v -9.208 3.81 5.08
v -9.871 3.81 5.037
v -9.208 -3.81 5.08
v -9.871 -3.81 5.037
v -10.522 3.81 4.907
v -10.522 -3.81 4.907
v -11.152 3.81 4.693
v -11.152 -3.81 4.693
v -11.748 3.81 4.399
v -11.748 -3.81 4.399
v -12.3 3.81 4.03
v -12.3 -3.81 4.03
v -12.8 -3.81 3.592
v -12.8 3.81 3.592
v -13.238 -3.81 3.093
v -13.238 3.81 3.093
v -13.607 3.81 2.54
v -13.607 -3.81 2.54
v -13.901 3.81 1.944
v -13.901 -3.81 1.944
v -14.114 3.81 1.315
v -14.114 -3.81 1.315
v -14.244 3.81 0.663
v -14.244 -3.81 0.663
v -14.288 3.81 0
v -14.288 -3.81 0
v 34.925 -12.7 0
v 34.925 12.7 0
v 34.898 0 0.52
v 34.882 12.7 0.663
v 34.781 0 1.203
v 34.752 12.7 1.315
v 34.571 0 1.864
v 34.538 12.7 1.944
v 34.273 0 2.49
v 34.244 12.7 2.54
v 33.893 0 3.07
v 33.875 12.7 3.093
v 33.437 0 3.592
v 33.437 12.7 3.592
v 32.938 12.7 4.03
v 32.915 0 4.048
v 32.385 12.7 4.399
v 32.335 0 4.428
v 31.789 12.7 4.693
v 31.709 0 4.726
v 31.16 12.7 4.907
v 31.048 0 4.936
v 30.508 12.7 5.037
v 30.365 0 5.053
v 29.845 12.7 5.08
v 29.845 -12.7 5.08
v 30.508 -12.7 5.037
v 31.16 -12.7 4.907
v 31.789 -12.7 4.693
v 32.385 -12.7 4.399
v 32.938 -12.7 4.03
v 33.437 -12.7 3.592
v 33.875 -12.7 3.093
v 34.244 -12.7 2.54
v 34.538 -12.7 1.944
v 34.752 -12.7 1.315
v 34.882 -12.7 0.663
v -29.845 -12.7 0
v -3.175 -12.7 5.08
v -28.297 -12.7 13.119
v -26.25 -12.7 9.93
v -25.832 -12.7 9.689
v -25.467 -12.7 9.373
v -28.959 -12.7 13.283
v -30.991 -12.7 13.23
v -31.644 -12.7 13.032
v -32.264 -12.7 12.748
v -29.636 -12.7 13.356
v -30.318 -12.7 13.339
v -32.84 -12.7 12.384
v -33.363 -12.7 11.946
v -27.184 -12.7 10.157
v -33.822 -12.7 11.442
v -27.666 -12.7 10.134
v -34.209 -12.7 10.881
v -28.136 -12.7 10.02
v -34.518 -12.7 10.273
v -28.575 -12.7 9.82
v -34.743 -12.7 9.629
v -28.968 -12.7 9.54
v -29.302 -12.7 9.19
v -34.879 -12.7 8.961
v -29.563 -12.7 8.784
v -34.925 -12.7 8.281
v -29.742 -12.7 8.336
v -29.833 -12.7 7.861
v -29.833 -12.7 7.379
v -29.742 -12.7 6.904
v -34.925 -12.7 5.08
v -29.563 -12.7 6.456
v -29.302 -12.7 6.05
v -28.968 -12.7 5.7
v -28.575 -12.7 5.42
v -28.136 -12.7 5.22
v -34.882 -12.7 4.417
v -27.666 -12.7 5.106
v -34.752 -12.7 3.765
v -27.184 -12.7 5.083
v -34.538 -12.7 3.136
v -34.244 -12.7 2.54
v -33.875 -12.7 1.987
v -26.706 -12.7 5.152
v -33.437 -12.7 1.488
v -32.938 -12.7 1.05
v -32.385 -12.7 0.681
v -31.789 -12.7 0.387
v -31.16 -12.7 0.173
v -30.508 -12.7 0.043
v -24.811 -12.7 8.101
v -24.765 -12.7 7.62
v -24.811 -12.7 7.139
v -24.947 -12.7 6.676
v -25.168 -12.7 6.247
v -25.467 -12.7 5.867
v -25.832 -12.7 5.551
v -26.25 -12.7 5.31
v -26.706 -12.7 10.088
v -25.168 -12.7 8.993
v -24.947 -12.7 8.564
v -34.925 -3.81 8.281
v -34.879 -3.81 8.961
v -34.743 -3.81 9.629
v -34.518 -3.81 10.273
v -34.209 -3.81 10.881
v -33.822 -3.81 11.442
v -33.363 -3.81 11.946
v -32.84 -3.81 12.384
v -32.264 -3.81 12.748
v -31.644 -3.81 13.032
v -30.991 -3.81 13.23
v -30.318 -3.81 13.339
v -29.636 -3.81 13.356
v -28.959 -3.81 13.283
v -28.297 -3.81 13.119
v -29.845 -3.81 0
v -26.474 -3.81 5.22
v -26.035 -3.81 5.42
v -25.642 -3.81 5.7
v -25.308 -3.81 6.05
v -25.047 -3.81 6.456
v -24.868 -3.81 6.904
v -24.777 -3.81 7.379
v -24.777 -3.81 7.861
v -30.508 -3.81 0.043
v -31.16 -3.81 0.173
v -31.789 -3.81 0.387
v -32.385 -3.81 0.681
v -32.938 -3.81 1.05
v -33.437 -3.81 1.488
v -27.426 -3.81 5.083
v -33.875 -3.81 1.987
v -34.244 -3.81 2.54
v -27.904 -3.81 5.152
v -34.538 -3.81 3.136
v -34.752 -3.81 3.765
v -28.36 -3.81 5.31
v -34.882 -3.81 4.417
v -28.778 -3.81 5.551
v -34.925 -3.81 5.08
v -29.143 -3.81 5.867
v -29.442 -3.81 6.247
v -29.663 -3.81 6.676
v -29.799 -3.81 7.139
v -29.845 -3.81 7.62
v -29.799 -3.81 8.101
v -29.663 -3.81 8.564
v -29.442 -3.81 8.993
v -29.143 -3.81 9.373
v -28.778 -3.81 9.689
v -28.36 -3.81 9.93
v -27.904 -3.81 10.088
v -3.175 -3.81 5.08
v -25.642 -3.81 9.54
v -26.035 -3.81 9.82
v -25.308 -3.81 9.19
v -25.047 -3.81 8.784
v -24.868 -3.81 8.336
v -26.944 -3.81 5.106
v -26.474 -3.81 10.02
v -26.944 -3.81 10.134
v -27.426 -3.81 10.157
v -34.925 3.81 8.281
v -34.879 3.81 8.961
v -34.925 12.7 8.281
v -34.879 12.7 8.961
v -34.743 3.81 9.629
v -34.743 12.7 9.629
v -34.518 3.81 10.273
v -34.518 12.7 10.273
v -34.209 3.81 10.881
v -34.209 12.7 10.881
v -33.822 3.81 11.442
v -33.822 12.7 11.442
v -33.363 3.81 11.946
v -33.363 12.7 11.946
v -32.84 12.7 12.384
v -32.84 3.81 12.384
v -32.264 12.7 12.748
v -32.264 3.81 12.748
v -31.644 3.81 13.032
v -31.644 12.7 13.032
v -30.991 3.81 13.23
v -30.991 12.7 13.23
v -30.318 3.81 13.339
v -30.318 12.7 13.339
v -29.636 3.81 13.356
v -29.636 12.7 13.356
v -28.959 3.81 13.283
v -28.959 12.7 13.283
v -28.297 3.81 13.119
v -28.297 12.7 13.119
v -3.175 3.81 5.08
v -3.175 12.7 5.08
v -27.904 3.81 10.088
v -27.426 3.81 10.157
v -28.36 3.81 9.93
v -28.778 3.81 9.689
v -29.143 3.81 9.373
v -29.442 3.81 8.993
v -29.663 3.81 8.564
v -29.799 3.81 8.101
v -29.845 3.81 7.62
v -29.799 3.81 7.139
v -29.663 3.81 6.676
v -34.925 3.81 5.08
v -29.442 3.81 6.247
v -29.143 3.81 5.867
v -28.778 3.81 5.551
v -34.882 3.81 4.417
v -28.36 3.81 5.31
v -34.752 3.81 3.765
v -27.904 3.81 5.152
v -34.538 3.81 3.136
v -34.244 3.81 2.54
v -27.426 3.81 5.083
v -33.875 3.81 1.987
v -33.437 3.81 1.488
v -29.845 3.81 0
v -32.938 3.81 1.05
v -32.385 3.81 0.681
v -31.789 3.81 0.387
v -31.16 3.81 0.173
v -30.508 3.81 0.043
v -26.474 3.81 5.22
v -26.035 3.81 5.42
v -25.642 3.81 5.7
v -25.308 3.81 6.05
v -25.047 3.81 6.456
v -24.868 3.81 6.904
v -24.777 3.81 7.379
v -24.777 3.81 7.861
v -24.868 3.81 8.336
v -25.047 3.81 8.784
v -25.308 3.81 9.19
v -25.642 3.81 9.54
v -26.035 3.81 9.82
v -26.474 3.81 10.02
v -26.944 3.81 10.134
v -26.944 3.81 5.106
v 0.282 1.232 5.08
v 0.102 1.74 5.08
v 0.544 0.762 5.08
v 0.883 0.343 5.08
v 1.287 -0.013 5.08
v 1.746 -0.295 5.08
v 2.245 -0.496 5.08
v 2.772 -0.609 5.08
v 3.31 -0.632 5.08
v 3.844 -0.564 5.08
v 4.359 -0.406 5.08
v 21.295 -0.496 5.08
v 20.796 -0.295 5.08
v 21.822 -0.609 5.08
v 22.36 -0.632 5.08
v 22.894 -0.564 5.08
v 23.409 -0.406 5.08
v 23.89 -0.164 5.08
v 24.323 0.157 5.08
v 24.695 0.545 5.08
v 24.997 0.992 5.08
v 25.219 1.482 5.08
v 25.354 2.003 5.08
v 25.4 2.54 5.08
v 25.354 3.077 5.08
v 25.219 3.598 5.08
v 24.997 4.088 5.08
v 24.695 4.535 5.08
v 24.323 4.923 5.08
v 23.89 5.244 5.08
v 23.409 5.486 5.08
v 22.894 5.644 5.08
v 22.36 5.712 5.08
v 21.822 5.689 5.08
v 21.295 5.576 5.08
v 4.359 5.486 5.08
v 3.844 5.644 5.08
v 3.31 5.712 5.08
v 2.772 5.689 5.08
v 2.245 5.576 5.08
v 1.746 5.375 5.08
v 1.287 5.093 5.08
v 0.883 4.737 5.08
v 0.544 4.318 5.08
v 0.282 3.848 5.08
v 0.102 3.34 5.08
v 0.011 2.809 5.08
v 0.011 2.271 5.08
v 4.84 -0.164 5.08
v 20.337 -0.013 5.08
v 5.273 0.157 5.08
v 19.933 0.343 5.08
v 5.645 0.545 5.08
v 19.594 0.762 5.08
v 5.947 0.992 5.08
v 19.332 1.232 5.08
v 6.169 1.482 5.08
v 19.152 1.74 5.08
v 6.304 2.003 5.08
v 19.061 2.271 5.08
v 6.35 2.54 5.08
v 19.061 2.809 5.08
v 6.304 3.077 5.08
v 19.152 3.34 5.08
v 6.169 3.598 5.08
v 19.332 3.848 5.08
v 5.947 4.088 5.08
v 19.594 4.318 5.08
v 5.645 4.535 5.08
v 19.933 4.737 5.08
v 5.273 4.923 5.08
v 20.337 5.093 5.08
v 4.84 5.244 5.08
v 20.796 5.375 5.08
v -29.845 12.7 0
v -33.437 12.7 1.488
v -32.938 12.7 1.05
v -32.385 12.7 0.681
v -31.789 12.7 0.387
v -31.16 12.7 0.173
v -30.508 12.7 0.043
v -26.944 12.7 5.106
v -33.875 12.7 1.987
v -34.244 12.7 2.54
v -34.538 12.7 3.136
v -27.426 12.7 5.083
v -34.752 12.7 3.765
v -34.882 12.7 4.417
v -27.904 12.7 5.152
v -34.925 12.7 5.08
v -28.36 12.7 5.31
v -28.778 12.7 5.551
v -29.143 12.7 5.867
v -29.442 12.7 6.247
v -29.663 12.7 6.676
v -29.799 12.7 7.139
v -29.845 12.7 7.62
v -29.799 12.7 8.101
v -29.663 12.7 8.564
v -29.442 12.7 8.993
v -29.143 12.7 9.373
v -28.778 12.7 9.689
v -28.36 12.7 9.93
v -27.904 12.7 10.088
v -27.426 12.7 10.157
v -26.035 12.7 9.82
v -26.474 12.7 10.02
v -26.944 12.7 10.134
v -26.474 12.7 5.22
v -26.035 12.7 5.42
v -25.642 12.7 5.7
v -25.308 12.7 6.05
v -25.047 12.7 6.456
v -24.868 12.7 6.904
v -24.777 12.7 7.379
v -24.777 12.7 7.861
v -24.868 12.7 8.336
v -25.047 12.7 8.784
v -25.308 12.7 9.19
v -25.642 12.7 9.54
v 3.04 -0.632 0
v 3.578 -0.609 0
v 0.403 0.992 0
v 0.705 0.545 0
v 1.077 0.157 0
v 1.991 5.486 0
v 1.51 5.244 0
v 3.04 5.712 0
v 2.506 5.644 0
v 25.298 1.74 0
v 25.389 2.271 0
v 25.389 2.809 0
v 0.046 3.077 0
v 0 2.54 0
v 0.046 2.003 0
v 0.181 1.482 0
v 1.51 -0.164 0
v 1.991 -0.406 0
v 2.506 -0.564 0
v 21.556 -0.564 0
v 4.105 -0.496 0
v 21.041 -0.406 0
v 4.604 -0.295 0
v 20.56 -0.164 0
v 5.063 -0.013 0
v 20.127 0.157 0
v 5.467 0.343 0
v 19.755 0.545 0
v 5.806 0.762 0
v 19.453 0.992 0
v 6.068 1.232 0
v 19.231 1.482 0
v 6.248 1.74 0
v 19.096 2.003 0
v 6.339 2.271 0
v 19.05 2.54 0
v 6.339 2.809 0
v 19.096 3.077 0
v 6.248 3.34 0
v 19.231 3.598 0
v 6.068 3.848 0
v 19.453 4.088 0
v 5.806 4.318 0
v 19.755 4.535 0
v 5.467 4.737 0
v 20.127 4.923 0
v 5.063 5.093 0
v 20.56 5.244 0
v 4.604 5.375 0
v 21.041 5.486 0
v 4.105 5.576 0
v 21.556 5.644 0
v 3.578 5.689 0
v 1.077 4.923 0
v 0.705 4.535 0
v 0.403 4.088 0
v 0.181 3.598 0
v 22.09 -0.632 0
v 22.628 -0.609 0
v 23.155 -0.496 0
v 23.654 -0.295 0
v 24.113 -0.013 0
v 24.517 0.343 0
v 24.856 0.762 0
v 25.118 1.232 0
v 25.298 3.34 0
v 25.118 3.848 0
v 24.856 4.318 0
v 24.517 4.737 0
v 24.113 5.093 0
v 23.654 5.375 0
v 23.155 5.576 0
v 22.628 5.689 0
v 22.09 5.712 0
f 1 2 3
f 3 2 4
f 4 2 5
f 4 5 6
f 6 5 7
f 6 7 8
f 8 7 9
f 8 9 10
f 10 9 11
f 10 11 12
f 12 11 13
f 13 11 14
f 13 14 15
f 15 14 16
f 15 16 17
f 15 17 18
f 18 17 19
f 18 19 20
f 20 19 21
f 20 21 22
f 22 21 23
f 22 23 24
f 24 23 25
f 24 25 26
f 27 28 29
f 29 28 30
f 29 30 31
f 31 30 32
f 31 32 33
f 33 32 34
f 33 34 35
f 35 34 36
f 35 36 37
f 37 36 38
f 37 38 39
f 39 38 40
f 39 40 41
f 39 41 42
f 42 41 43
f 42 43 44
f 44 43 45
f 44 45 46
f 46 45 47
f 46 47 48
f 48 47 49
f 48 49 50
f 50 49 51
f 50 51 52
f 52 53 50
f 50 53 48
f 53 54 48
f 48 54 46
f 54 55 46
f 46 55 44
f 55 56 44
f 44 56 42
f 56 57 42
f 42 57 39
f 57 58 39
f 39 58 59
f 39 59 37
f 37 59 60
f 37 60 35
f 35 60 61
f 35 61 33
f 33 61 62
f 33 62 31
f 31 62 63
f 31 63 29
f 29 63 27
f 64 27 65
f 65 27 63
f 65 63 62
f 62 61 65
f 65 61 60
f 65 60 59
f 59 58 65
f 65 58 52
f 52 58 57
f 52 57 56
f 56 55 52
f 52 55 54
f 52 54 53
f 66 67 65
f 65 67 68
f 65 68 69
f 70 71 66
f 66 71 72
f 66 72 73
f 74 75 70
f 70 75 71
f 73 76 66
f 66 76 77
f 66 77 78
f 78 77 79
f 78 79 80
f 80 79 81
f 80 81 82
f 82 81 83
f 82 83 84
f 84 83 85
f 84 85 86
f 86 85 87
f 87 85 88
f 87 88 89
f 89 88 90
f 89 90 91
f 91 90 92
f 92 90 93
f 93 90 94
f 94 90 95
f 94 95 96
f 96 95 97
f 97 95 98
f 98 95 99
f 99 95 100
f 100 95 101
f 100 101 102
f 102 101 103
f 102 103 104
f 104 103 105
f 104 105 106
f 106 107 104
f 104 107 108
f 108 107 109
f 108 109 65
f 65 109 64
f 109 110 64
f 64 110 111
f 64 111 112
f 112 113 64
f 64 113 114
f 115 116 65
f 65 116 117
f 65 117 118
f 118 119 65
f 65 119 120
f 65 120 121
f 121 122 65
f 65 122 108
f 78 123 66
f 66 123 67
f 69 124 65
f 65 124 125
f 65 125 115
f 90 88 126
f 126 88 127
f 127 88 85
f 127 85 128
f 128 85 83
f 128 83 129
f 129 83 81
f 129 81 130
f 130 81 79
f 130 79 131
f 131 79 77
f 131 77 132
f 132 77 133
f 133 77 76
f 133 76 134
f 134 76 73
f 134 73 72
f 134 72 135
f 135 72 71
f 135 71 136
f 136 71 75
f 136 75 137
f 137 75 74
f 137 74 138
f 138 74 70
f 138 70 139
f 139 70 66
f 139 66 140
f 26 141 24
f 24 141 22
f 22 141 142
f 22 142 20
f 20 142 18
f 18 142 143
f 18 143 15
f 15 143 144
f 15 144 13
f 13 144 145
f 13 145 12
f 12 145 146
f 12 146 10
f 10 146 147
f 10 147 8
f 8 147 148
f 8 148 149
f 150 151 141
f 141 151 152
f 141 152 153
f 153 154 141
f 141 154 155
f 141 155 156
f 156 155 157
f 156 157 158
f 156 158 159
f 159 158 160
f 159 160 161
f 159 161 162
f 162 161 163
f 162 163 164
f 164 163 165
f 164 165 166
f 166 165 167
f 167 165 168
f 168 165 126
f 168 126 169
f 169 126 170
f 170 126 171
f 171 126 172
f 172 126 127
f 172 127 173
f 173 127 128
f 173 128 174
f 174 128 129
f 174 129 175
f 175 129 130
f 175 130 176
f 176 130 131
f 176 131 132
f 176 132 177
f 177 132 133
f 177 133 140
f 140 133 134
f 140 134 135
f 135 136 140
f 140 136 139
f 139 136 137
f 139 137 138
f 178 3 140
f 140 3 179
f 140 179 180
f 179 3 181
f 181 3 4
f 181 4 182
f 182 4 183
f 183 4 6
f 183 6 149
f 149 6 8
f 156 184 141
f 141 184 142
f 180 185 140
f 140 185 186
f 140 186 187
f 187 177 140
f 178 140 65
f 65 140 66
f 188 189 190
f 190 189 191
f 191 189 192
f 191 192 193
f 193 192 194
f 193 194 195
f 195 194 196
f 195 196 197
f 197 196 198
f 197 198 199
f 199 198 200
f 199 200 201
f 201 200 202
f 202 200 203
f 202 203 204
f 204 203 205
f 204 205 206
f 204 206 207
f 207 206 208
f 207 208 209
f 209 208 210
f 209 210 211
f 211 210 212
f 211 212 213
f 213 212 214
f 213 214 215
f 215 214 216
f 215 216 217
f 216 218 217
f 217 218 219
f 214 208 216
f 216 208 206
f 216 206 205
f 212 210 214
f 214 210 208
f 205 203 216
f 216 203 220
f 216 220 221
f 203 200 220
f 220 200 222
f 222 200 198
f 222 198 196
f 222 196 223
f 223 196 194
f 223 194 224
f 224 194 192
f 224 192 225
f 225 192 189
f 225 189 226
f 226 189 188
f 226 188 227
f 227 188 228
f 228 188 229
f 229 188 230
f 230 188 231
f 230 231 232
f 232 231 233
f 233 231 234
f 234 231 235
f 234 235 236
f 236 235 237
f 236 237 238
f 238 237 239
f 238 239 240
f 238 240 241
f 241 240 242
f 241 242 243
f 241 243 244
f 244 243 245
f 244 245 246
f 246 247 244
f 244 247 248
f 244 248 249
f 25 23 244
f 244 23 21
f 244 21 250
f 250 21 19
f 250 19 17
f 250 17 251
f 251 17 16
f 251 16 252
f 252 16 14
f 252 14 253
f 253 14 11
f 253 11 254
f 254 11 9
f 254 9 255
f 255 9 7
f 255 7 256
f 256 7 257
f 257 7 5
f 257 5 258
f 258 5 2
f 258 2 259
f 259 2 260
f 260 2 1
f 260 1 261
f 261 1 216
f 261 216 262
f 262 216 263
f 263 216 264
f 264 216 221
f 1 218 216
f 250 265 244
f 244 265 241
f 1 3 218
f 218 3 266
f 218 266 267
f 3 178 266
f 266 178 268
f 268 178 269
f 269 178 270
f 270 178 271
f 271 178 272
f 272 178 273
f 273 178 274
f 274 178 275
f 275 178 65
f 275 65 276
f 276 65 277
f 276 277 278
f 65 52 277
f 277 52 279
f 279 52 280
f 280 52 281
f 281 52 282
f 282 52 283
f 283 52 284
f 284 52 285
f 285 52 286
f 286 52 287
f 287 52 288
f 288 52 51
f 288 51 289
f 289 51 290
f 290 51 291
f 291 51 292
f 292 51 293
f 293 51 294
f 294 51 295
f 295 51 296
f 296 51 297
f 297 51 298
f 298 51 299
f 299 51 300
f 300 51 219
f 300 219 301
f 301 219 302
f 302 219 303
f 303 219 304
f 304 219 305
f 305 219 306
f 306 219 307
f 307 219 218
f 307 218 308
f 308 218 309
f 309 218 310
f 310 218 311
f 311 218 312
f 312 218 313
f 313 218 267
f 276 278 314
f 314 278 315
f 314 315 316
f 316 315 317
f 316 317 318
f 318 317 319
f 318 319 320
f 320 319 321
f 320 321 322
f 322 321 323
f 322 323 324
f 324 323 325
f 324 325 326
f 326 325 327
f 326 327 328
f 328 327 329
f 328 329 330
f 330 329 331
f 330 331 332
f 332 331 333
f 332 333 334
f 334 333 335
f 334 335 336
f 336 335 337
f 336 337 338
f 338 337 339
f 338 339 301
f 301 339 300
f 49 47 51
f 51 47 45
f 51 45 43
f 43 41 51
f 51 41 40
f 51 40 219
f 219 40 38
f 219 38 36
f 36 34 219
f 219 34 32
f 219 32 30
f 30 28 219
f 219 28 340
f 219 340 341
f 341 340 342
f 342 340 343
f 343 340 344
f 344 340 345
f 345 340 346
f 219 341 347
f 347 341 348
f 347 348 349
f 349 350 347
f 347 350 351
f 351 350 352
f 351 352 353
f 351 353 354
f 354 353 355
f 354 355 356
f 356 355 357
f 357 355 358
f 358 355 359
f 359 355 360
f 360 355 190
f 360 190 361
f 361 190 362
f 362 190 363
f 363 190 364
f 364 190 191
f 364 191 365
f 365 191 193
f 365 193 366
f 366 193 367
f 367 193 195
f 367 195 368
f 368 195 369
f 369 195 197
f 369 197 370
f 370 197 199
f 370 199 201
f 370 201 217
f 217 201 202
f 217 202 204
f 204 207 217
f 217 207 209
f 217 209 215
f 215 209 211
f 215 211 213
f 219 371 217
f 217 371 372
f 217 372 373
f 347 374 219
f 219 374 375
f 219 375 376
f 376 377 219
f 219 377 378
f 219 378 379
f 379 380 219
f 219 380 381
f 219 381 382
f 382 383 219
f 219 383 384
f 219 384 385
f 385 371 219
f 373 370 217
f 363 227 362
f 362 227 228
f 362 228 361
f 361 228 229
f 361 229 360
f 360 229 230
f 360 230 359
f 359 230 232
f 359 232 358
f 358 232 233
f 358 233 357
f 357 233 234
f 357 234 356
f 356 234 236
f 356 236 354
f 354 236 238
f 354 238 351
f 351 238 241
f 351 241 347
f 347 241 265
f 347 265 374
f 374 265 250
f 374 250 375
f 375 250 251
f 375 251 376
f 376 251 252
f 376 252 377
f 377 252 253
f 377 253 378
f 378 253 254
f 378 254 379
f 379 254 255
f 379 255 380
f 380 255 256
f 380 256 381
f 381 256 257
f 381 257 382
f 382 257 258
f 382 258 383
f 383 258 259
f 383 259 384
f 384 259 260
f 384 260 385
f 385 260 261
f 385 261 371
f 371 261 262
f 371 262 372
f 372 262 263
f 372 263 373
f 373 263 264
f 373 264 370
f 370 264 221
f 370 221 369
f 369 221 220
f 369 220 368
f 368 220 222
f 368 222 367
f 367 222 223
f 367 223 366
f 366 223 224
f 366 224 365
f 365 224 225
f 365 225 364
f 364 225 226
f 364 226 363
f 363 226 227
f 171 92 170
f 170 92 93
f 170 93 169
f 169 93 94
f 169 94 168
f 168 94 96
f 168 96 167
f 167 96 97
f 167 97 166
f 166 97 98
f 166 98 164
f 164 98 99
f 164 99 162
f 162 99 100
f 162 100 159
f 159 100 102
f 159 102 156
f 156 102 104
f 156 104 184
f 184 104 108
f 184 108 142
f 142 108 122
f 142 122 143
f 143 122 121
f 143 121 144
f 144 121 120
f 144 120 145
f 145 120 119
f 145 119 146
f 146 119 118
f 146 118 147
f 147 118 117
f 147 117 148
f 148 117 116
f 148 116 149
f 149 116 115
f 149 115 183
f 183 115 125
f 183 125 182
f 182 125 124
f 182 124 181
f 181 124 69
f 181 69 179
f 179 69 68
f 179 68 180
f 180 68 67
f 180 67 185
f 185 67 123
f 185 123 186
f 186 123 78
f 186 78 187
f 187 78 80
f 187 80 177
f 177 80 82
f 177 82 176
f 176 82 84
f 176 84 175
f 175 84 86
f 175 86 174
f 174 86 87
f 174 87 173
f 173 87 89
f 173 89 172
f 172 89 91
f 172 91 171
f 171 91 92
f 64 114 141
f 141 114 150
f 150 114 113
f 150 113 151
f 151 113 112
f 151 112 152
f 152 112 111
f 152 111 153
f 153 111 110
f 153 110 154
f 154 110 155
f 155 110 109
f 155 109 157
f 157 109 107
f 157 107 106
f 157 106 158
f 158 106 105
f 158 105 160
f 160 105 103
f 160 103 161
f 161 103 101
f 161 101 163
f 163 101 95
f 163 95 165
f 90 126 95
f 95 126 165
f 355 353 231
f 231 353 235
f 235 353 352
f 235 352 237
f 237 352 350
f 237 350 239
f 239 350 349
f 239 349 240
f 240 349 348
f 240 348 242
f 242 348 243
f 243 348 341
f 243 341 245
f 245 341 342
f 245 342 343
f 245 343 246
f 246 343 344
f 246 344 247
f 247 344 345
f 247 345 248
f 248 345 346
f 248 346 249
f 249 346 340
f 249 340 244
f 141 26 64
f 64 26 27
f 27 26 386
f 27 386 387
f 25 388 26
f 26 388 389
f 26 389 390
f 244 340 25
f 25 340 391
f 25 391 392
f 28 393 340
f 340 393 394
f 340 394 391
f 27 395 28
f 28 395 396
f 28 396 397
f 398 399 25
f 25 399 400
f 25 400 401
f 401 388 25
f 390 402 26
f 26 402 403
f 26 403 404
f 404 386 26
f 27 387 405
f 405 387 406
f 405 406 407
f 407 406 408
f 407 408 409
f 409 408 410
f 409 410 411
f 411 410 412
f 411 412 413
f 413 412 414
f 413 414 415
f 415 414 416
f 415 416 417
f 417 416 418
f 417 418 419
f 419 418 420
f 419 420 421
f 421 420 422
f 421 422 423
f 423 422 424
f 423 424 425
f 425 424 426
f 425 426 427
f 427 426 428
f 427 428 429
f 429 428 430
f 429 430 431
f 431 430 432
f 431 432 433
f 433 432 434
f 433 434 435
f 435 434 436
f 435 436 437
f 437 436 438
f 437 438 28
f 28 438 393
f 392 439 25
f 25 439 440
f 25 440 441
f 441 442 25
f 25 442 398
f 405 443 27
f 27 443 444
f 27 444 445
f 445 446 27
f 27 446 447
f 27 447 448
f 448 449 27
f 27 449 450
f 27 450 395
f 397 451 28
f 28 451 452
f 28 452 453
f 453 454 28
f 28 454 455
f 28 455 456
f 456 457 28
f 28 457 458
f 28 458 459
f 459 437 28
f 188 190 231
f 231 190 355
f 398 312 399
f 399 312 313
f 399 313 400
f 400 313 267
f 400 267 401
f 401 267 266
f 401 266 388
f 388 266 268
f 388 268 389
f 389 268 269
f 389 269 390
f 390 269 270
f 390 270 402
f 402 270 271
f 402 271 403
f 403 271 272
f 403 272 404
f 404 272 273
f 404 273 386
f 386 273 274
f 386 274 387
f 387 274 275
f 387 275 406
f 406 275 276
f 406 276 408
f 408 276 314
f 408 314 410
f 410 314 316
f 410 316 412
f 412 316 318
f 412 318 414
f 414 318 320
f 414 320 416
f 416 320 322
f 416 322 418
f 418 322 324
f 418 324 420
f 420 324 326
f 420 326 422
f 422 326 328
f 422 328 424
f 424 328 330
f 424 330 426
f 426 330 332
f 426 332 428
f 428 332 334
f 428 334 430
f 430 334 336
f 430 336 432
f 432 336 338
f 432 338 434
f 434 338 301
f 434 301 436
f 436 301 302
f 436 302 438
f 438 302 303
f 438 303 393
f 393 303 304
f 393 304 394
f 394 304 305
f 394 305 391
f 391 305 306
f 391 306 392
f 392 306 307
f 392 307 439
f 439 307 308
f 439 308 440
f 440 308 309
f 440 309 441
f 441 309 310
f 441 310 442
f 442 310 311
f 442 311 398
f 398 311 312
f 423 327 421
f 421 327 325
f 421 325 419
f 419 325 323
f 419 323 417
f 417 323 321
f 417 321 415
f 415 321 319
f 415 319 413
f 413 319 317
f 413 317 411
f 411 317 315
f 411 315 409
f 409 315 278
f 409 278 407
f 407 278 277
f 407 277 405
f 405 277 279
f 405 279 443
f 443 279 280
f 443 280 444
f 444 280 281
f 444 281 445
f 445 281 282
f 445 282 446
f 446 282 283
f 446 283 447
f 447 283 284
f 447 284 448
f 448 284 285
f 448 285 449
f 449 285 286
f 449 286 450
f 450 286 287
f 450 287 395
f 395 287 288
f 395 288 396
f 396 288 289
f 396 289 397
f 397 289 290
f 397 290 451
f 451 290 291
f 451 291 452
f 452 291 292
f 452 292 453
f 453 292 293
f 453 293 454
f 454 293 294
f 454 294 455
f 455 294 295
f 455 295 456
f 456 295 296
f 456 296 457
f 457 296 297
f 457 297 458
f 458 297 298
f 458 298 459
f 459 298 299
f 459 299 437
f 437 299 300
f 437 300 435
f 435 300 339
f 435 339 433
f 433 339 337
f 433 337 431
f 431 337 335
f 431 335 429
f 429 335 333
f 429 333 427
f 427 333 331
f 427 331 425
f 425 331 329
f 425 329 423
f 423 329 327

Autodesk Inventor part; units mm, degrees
ref_plane "YZ Plane" through (0, 0, 0) normal (1, 0, 0) x (0, 1, 0)
ref_plane "XZ Plane" through (0, 0, 0) normal (0, 1, 0) x (-1, 0, 0)
ref_plane "XY Plane" through (0, 0, 0) normal (0, 0, 1) x (1, 0, 0)
sketch "Sketch1" plane through (0, 0, 0) normal (0, 0, 1) x (1, 0, 0)
  line L0 (-34.925, -12.7) -> (34.925, -12.7)
  line L1 (34.925, -12.7) -> (34.925, 12.7)
  line L2 (34.925, 12.7) -> (-34.925, 12.7)
  line L3 (-34.925, 12.7) -> (-34.925, -12.7)
  line L4 (-34.925, -12.7) -> (34.925, 12.7) construction
  line L5 (34.925, -12.7) -> (-34.925, 12.7) construction
  point P0 (0, 0)
  dimension "d0" = 25.4
  dimension "d1" = 69.85
extrude "Extrusion1" add sketch "Sketch1" along normal blind 5.08
sketch "Sketch2" plane through (0, 0, 5.08) normal (0, 0, 1) x (1, 0, 0)
  line L0 (-34.925, 12.7) -> (-34.925, -12.7) projected
  line L1 (34.925, -12.7) -> (34.925, 12.7) projected
  line L2 (34.925, 12.7) -> (-34.925, 12.7) projected
  point P0 (0, 0)
  point P1 (3.175, 2.54)
  point P2 (22.225, 2.54)
  dimension "d5" = 12.7
  dimension "d6" = 10.16
  dimension "d7" = 10.16
  dimension "d18" = 19.05
hole "Hole1" at (3.175, 2.54, 5.08) at (22.225, 2.54, 5.08) direction (0, 0, -1) diameter 6.35 end through all
sketch "Sketch5" plane through (0, 0, 5.08) normal (0, 0, 1) x (1, 0, 0)
  line L0 (34.925, 12.7) -> (-34.925, 12.7) projected
  line L1 (-34.925, 12.7) -> (-14.2875, 12.7)
  line L2 (-14.2875, 12.7) -> (-14.2875, 3.81)
  line L3 (-14.2875, 3.81) -> (-34.925, 3.81)
  line L4 (-34.925, 3.81) -> (-34.925, 12.7)
  line L5 (-34.925, 12.7) -> (-34.925, -12.7) projected
  line L6 (-34.925, -12.7) -> (-14.2875, -12.7)
  line L7 (-14.2875, -12.7) -> (-14.2875, -3.81)
  line L8 (-14.2875, -3.81) -> (-34.925, -3.81)
  line L9 (-34.925, -3.81) -> (-34.925, -12.7)
  point P0 (0, 0)
  dimension "d19" = 7.62
extrude "Extrusion2" add sketch "Sketch5" along normal blind 10.16
sketch "Sketch7" plane through (0, 0, 5.08) normal (0, 0, 1) x (1, 0, 0)
  line L0 (-29.845, 3.81) -> (-34.925, 3.81) projected
  line L1 (-19.3675, -3.81) -> (-14.2875, -3.81) projected
  line L2 (-34.925, 3.81) -> (-14.2875, 3.81)
  line L3 (-14.2875, 3.81) -> (-14.2875, -3.81)
  line L4 (-14.2875, -3.81) -> (-34.925, -3.81)
  line L5 (-34.925, -3.81) -> (-34.925, 3.81)
  point P0 (0, 0)
extrude "Extrusion4" cut sketch "Sketch7" against normal blind 12.7
fillet "Fillet2" radius 5.08 2 edges at (-34.925, 8.255, 0) (-34.925, -8.255, 0)
sketch "Sketch8" plane through (34.925, -12.7, 0) normal (0, -1, 0) x (1, 0, 0)
  line L0 (-69.85, 5.08) -> (-69.85, 15.24) projected
  line L1 (-64.77, 0) -> (0, 0) projected
  point P0 (-34.925, 0)
  point P1 (-62.23, 7.62)
  point P2 (-69.85, 10.16)
  dimension "d28" = 7.62
  dimension "d29" = 7.62
hole "Hole2" at (-27.305, -12.7, 7.62) direction (0, 1, 0) diameter 5.08 end through all
sketch "Sketch9" plane through (34.925, 12.7, 5.08) normal (0, 1, 0) x (1, 0, 0)
  line L0 (-49.2125, -10.16) -> (-69.85, -10.16) projected
  line L1 (-69.85, -10.16) -> (-38.1, 0)
  line L2 (-49.2125, 0) -> (0, 0) projected
  line L3 (-38.1, -10.16) -> (-38.1, 0)
  line L4 (-38.1, -10.16) -> (-69.85, -10.16)
  line L5 (-38.1, 0) -> (-58.7375, 0)
  line L6 (-58.7375, 0) -> (-58.7375, -6.604)
  point P0 (-34.925, 5.08)
extrude "Extrusion5" cut sketch "Sketch9" against normal through all contours L0 L1 L3 L4
extrude "Extrusion6" add sketch "Sketch9" against normal up to surface (8.89 mm away) contours L6 L5 L2 L1
fillet "Fillet3" radius 5.08 1 edges at (-34.925, 8.255, 15.24)
fillet "Fillet4" radius 5.08 1 edges at (-34.925, -8.255, 15.24)
extrude "Extrusion7" add sketch "Sketch9" along normal up to surface (8.89 mm away) from surface at -25.4 contours L6 L5 L2 L1
fillet "Fillet5" radius 5.08 1 edges at (34.925, 0, 5.08)
fillet "Fillet6" radius 5.08 1 edges at (-14.2875, 0, 5.08)
equation "\"d6\" = d7"
properties part number "Upper_Spring_Hanger2"
